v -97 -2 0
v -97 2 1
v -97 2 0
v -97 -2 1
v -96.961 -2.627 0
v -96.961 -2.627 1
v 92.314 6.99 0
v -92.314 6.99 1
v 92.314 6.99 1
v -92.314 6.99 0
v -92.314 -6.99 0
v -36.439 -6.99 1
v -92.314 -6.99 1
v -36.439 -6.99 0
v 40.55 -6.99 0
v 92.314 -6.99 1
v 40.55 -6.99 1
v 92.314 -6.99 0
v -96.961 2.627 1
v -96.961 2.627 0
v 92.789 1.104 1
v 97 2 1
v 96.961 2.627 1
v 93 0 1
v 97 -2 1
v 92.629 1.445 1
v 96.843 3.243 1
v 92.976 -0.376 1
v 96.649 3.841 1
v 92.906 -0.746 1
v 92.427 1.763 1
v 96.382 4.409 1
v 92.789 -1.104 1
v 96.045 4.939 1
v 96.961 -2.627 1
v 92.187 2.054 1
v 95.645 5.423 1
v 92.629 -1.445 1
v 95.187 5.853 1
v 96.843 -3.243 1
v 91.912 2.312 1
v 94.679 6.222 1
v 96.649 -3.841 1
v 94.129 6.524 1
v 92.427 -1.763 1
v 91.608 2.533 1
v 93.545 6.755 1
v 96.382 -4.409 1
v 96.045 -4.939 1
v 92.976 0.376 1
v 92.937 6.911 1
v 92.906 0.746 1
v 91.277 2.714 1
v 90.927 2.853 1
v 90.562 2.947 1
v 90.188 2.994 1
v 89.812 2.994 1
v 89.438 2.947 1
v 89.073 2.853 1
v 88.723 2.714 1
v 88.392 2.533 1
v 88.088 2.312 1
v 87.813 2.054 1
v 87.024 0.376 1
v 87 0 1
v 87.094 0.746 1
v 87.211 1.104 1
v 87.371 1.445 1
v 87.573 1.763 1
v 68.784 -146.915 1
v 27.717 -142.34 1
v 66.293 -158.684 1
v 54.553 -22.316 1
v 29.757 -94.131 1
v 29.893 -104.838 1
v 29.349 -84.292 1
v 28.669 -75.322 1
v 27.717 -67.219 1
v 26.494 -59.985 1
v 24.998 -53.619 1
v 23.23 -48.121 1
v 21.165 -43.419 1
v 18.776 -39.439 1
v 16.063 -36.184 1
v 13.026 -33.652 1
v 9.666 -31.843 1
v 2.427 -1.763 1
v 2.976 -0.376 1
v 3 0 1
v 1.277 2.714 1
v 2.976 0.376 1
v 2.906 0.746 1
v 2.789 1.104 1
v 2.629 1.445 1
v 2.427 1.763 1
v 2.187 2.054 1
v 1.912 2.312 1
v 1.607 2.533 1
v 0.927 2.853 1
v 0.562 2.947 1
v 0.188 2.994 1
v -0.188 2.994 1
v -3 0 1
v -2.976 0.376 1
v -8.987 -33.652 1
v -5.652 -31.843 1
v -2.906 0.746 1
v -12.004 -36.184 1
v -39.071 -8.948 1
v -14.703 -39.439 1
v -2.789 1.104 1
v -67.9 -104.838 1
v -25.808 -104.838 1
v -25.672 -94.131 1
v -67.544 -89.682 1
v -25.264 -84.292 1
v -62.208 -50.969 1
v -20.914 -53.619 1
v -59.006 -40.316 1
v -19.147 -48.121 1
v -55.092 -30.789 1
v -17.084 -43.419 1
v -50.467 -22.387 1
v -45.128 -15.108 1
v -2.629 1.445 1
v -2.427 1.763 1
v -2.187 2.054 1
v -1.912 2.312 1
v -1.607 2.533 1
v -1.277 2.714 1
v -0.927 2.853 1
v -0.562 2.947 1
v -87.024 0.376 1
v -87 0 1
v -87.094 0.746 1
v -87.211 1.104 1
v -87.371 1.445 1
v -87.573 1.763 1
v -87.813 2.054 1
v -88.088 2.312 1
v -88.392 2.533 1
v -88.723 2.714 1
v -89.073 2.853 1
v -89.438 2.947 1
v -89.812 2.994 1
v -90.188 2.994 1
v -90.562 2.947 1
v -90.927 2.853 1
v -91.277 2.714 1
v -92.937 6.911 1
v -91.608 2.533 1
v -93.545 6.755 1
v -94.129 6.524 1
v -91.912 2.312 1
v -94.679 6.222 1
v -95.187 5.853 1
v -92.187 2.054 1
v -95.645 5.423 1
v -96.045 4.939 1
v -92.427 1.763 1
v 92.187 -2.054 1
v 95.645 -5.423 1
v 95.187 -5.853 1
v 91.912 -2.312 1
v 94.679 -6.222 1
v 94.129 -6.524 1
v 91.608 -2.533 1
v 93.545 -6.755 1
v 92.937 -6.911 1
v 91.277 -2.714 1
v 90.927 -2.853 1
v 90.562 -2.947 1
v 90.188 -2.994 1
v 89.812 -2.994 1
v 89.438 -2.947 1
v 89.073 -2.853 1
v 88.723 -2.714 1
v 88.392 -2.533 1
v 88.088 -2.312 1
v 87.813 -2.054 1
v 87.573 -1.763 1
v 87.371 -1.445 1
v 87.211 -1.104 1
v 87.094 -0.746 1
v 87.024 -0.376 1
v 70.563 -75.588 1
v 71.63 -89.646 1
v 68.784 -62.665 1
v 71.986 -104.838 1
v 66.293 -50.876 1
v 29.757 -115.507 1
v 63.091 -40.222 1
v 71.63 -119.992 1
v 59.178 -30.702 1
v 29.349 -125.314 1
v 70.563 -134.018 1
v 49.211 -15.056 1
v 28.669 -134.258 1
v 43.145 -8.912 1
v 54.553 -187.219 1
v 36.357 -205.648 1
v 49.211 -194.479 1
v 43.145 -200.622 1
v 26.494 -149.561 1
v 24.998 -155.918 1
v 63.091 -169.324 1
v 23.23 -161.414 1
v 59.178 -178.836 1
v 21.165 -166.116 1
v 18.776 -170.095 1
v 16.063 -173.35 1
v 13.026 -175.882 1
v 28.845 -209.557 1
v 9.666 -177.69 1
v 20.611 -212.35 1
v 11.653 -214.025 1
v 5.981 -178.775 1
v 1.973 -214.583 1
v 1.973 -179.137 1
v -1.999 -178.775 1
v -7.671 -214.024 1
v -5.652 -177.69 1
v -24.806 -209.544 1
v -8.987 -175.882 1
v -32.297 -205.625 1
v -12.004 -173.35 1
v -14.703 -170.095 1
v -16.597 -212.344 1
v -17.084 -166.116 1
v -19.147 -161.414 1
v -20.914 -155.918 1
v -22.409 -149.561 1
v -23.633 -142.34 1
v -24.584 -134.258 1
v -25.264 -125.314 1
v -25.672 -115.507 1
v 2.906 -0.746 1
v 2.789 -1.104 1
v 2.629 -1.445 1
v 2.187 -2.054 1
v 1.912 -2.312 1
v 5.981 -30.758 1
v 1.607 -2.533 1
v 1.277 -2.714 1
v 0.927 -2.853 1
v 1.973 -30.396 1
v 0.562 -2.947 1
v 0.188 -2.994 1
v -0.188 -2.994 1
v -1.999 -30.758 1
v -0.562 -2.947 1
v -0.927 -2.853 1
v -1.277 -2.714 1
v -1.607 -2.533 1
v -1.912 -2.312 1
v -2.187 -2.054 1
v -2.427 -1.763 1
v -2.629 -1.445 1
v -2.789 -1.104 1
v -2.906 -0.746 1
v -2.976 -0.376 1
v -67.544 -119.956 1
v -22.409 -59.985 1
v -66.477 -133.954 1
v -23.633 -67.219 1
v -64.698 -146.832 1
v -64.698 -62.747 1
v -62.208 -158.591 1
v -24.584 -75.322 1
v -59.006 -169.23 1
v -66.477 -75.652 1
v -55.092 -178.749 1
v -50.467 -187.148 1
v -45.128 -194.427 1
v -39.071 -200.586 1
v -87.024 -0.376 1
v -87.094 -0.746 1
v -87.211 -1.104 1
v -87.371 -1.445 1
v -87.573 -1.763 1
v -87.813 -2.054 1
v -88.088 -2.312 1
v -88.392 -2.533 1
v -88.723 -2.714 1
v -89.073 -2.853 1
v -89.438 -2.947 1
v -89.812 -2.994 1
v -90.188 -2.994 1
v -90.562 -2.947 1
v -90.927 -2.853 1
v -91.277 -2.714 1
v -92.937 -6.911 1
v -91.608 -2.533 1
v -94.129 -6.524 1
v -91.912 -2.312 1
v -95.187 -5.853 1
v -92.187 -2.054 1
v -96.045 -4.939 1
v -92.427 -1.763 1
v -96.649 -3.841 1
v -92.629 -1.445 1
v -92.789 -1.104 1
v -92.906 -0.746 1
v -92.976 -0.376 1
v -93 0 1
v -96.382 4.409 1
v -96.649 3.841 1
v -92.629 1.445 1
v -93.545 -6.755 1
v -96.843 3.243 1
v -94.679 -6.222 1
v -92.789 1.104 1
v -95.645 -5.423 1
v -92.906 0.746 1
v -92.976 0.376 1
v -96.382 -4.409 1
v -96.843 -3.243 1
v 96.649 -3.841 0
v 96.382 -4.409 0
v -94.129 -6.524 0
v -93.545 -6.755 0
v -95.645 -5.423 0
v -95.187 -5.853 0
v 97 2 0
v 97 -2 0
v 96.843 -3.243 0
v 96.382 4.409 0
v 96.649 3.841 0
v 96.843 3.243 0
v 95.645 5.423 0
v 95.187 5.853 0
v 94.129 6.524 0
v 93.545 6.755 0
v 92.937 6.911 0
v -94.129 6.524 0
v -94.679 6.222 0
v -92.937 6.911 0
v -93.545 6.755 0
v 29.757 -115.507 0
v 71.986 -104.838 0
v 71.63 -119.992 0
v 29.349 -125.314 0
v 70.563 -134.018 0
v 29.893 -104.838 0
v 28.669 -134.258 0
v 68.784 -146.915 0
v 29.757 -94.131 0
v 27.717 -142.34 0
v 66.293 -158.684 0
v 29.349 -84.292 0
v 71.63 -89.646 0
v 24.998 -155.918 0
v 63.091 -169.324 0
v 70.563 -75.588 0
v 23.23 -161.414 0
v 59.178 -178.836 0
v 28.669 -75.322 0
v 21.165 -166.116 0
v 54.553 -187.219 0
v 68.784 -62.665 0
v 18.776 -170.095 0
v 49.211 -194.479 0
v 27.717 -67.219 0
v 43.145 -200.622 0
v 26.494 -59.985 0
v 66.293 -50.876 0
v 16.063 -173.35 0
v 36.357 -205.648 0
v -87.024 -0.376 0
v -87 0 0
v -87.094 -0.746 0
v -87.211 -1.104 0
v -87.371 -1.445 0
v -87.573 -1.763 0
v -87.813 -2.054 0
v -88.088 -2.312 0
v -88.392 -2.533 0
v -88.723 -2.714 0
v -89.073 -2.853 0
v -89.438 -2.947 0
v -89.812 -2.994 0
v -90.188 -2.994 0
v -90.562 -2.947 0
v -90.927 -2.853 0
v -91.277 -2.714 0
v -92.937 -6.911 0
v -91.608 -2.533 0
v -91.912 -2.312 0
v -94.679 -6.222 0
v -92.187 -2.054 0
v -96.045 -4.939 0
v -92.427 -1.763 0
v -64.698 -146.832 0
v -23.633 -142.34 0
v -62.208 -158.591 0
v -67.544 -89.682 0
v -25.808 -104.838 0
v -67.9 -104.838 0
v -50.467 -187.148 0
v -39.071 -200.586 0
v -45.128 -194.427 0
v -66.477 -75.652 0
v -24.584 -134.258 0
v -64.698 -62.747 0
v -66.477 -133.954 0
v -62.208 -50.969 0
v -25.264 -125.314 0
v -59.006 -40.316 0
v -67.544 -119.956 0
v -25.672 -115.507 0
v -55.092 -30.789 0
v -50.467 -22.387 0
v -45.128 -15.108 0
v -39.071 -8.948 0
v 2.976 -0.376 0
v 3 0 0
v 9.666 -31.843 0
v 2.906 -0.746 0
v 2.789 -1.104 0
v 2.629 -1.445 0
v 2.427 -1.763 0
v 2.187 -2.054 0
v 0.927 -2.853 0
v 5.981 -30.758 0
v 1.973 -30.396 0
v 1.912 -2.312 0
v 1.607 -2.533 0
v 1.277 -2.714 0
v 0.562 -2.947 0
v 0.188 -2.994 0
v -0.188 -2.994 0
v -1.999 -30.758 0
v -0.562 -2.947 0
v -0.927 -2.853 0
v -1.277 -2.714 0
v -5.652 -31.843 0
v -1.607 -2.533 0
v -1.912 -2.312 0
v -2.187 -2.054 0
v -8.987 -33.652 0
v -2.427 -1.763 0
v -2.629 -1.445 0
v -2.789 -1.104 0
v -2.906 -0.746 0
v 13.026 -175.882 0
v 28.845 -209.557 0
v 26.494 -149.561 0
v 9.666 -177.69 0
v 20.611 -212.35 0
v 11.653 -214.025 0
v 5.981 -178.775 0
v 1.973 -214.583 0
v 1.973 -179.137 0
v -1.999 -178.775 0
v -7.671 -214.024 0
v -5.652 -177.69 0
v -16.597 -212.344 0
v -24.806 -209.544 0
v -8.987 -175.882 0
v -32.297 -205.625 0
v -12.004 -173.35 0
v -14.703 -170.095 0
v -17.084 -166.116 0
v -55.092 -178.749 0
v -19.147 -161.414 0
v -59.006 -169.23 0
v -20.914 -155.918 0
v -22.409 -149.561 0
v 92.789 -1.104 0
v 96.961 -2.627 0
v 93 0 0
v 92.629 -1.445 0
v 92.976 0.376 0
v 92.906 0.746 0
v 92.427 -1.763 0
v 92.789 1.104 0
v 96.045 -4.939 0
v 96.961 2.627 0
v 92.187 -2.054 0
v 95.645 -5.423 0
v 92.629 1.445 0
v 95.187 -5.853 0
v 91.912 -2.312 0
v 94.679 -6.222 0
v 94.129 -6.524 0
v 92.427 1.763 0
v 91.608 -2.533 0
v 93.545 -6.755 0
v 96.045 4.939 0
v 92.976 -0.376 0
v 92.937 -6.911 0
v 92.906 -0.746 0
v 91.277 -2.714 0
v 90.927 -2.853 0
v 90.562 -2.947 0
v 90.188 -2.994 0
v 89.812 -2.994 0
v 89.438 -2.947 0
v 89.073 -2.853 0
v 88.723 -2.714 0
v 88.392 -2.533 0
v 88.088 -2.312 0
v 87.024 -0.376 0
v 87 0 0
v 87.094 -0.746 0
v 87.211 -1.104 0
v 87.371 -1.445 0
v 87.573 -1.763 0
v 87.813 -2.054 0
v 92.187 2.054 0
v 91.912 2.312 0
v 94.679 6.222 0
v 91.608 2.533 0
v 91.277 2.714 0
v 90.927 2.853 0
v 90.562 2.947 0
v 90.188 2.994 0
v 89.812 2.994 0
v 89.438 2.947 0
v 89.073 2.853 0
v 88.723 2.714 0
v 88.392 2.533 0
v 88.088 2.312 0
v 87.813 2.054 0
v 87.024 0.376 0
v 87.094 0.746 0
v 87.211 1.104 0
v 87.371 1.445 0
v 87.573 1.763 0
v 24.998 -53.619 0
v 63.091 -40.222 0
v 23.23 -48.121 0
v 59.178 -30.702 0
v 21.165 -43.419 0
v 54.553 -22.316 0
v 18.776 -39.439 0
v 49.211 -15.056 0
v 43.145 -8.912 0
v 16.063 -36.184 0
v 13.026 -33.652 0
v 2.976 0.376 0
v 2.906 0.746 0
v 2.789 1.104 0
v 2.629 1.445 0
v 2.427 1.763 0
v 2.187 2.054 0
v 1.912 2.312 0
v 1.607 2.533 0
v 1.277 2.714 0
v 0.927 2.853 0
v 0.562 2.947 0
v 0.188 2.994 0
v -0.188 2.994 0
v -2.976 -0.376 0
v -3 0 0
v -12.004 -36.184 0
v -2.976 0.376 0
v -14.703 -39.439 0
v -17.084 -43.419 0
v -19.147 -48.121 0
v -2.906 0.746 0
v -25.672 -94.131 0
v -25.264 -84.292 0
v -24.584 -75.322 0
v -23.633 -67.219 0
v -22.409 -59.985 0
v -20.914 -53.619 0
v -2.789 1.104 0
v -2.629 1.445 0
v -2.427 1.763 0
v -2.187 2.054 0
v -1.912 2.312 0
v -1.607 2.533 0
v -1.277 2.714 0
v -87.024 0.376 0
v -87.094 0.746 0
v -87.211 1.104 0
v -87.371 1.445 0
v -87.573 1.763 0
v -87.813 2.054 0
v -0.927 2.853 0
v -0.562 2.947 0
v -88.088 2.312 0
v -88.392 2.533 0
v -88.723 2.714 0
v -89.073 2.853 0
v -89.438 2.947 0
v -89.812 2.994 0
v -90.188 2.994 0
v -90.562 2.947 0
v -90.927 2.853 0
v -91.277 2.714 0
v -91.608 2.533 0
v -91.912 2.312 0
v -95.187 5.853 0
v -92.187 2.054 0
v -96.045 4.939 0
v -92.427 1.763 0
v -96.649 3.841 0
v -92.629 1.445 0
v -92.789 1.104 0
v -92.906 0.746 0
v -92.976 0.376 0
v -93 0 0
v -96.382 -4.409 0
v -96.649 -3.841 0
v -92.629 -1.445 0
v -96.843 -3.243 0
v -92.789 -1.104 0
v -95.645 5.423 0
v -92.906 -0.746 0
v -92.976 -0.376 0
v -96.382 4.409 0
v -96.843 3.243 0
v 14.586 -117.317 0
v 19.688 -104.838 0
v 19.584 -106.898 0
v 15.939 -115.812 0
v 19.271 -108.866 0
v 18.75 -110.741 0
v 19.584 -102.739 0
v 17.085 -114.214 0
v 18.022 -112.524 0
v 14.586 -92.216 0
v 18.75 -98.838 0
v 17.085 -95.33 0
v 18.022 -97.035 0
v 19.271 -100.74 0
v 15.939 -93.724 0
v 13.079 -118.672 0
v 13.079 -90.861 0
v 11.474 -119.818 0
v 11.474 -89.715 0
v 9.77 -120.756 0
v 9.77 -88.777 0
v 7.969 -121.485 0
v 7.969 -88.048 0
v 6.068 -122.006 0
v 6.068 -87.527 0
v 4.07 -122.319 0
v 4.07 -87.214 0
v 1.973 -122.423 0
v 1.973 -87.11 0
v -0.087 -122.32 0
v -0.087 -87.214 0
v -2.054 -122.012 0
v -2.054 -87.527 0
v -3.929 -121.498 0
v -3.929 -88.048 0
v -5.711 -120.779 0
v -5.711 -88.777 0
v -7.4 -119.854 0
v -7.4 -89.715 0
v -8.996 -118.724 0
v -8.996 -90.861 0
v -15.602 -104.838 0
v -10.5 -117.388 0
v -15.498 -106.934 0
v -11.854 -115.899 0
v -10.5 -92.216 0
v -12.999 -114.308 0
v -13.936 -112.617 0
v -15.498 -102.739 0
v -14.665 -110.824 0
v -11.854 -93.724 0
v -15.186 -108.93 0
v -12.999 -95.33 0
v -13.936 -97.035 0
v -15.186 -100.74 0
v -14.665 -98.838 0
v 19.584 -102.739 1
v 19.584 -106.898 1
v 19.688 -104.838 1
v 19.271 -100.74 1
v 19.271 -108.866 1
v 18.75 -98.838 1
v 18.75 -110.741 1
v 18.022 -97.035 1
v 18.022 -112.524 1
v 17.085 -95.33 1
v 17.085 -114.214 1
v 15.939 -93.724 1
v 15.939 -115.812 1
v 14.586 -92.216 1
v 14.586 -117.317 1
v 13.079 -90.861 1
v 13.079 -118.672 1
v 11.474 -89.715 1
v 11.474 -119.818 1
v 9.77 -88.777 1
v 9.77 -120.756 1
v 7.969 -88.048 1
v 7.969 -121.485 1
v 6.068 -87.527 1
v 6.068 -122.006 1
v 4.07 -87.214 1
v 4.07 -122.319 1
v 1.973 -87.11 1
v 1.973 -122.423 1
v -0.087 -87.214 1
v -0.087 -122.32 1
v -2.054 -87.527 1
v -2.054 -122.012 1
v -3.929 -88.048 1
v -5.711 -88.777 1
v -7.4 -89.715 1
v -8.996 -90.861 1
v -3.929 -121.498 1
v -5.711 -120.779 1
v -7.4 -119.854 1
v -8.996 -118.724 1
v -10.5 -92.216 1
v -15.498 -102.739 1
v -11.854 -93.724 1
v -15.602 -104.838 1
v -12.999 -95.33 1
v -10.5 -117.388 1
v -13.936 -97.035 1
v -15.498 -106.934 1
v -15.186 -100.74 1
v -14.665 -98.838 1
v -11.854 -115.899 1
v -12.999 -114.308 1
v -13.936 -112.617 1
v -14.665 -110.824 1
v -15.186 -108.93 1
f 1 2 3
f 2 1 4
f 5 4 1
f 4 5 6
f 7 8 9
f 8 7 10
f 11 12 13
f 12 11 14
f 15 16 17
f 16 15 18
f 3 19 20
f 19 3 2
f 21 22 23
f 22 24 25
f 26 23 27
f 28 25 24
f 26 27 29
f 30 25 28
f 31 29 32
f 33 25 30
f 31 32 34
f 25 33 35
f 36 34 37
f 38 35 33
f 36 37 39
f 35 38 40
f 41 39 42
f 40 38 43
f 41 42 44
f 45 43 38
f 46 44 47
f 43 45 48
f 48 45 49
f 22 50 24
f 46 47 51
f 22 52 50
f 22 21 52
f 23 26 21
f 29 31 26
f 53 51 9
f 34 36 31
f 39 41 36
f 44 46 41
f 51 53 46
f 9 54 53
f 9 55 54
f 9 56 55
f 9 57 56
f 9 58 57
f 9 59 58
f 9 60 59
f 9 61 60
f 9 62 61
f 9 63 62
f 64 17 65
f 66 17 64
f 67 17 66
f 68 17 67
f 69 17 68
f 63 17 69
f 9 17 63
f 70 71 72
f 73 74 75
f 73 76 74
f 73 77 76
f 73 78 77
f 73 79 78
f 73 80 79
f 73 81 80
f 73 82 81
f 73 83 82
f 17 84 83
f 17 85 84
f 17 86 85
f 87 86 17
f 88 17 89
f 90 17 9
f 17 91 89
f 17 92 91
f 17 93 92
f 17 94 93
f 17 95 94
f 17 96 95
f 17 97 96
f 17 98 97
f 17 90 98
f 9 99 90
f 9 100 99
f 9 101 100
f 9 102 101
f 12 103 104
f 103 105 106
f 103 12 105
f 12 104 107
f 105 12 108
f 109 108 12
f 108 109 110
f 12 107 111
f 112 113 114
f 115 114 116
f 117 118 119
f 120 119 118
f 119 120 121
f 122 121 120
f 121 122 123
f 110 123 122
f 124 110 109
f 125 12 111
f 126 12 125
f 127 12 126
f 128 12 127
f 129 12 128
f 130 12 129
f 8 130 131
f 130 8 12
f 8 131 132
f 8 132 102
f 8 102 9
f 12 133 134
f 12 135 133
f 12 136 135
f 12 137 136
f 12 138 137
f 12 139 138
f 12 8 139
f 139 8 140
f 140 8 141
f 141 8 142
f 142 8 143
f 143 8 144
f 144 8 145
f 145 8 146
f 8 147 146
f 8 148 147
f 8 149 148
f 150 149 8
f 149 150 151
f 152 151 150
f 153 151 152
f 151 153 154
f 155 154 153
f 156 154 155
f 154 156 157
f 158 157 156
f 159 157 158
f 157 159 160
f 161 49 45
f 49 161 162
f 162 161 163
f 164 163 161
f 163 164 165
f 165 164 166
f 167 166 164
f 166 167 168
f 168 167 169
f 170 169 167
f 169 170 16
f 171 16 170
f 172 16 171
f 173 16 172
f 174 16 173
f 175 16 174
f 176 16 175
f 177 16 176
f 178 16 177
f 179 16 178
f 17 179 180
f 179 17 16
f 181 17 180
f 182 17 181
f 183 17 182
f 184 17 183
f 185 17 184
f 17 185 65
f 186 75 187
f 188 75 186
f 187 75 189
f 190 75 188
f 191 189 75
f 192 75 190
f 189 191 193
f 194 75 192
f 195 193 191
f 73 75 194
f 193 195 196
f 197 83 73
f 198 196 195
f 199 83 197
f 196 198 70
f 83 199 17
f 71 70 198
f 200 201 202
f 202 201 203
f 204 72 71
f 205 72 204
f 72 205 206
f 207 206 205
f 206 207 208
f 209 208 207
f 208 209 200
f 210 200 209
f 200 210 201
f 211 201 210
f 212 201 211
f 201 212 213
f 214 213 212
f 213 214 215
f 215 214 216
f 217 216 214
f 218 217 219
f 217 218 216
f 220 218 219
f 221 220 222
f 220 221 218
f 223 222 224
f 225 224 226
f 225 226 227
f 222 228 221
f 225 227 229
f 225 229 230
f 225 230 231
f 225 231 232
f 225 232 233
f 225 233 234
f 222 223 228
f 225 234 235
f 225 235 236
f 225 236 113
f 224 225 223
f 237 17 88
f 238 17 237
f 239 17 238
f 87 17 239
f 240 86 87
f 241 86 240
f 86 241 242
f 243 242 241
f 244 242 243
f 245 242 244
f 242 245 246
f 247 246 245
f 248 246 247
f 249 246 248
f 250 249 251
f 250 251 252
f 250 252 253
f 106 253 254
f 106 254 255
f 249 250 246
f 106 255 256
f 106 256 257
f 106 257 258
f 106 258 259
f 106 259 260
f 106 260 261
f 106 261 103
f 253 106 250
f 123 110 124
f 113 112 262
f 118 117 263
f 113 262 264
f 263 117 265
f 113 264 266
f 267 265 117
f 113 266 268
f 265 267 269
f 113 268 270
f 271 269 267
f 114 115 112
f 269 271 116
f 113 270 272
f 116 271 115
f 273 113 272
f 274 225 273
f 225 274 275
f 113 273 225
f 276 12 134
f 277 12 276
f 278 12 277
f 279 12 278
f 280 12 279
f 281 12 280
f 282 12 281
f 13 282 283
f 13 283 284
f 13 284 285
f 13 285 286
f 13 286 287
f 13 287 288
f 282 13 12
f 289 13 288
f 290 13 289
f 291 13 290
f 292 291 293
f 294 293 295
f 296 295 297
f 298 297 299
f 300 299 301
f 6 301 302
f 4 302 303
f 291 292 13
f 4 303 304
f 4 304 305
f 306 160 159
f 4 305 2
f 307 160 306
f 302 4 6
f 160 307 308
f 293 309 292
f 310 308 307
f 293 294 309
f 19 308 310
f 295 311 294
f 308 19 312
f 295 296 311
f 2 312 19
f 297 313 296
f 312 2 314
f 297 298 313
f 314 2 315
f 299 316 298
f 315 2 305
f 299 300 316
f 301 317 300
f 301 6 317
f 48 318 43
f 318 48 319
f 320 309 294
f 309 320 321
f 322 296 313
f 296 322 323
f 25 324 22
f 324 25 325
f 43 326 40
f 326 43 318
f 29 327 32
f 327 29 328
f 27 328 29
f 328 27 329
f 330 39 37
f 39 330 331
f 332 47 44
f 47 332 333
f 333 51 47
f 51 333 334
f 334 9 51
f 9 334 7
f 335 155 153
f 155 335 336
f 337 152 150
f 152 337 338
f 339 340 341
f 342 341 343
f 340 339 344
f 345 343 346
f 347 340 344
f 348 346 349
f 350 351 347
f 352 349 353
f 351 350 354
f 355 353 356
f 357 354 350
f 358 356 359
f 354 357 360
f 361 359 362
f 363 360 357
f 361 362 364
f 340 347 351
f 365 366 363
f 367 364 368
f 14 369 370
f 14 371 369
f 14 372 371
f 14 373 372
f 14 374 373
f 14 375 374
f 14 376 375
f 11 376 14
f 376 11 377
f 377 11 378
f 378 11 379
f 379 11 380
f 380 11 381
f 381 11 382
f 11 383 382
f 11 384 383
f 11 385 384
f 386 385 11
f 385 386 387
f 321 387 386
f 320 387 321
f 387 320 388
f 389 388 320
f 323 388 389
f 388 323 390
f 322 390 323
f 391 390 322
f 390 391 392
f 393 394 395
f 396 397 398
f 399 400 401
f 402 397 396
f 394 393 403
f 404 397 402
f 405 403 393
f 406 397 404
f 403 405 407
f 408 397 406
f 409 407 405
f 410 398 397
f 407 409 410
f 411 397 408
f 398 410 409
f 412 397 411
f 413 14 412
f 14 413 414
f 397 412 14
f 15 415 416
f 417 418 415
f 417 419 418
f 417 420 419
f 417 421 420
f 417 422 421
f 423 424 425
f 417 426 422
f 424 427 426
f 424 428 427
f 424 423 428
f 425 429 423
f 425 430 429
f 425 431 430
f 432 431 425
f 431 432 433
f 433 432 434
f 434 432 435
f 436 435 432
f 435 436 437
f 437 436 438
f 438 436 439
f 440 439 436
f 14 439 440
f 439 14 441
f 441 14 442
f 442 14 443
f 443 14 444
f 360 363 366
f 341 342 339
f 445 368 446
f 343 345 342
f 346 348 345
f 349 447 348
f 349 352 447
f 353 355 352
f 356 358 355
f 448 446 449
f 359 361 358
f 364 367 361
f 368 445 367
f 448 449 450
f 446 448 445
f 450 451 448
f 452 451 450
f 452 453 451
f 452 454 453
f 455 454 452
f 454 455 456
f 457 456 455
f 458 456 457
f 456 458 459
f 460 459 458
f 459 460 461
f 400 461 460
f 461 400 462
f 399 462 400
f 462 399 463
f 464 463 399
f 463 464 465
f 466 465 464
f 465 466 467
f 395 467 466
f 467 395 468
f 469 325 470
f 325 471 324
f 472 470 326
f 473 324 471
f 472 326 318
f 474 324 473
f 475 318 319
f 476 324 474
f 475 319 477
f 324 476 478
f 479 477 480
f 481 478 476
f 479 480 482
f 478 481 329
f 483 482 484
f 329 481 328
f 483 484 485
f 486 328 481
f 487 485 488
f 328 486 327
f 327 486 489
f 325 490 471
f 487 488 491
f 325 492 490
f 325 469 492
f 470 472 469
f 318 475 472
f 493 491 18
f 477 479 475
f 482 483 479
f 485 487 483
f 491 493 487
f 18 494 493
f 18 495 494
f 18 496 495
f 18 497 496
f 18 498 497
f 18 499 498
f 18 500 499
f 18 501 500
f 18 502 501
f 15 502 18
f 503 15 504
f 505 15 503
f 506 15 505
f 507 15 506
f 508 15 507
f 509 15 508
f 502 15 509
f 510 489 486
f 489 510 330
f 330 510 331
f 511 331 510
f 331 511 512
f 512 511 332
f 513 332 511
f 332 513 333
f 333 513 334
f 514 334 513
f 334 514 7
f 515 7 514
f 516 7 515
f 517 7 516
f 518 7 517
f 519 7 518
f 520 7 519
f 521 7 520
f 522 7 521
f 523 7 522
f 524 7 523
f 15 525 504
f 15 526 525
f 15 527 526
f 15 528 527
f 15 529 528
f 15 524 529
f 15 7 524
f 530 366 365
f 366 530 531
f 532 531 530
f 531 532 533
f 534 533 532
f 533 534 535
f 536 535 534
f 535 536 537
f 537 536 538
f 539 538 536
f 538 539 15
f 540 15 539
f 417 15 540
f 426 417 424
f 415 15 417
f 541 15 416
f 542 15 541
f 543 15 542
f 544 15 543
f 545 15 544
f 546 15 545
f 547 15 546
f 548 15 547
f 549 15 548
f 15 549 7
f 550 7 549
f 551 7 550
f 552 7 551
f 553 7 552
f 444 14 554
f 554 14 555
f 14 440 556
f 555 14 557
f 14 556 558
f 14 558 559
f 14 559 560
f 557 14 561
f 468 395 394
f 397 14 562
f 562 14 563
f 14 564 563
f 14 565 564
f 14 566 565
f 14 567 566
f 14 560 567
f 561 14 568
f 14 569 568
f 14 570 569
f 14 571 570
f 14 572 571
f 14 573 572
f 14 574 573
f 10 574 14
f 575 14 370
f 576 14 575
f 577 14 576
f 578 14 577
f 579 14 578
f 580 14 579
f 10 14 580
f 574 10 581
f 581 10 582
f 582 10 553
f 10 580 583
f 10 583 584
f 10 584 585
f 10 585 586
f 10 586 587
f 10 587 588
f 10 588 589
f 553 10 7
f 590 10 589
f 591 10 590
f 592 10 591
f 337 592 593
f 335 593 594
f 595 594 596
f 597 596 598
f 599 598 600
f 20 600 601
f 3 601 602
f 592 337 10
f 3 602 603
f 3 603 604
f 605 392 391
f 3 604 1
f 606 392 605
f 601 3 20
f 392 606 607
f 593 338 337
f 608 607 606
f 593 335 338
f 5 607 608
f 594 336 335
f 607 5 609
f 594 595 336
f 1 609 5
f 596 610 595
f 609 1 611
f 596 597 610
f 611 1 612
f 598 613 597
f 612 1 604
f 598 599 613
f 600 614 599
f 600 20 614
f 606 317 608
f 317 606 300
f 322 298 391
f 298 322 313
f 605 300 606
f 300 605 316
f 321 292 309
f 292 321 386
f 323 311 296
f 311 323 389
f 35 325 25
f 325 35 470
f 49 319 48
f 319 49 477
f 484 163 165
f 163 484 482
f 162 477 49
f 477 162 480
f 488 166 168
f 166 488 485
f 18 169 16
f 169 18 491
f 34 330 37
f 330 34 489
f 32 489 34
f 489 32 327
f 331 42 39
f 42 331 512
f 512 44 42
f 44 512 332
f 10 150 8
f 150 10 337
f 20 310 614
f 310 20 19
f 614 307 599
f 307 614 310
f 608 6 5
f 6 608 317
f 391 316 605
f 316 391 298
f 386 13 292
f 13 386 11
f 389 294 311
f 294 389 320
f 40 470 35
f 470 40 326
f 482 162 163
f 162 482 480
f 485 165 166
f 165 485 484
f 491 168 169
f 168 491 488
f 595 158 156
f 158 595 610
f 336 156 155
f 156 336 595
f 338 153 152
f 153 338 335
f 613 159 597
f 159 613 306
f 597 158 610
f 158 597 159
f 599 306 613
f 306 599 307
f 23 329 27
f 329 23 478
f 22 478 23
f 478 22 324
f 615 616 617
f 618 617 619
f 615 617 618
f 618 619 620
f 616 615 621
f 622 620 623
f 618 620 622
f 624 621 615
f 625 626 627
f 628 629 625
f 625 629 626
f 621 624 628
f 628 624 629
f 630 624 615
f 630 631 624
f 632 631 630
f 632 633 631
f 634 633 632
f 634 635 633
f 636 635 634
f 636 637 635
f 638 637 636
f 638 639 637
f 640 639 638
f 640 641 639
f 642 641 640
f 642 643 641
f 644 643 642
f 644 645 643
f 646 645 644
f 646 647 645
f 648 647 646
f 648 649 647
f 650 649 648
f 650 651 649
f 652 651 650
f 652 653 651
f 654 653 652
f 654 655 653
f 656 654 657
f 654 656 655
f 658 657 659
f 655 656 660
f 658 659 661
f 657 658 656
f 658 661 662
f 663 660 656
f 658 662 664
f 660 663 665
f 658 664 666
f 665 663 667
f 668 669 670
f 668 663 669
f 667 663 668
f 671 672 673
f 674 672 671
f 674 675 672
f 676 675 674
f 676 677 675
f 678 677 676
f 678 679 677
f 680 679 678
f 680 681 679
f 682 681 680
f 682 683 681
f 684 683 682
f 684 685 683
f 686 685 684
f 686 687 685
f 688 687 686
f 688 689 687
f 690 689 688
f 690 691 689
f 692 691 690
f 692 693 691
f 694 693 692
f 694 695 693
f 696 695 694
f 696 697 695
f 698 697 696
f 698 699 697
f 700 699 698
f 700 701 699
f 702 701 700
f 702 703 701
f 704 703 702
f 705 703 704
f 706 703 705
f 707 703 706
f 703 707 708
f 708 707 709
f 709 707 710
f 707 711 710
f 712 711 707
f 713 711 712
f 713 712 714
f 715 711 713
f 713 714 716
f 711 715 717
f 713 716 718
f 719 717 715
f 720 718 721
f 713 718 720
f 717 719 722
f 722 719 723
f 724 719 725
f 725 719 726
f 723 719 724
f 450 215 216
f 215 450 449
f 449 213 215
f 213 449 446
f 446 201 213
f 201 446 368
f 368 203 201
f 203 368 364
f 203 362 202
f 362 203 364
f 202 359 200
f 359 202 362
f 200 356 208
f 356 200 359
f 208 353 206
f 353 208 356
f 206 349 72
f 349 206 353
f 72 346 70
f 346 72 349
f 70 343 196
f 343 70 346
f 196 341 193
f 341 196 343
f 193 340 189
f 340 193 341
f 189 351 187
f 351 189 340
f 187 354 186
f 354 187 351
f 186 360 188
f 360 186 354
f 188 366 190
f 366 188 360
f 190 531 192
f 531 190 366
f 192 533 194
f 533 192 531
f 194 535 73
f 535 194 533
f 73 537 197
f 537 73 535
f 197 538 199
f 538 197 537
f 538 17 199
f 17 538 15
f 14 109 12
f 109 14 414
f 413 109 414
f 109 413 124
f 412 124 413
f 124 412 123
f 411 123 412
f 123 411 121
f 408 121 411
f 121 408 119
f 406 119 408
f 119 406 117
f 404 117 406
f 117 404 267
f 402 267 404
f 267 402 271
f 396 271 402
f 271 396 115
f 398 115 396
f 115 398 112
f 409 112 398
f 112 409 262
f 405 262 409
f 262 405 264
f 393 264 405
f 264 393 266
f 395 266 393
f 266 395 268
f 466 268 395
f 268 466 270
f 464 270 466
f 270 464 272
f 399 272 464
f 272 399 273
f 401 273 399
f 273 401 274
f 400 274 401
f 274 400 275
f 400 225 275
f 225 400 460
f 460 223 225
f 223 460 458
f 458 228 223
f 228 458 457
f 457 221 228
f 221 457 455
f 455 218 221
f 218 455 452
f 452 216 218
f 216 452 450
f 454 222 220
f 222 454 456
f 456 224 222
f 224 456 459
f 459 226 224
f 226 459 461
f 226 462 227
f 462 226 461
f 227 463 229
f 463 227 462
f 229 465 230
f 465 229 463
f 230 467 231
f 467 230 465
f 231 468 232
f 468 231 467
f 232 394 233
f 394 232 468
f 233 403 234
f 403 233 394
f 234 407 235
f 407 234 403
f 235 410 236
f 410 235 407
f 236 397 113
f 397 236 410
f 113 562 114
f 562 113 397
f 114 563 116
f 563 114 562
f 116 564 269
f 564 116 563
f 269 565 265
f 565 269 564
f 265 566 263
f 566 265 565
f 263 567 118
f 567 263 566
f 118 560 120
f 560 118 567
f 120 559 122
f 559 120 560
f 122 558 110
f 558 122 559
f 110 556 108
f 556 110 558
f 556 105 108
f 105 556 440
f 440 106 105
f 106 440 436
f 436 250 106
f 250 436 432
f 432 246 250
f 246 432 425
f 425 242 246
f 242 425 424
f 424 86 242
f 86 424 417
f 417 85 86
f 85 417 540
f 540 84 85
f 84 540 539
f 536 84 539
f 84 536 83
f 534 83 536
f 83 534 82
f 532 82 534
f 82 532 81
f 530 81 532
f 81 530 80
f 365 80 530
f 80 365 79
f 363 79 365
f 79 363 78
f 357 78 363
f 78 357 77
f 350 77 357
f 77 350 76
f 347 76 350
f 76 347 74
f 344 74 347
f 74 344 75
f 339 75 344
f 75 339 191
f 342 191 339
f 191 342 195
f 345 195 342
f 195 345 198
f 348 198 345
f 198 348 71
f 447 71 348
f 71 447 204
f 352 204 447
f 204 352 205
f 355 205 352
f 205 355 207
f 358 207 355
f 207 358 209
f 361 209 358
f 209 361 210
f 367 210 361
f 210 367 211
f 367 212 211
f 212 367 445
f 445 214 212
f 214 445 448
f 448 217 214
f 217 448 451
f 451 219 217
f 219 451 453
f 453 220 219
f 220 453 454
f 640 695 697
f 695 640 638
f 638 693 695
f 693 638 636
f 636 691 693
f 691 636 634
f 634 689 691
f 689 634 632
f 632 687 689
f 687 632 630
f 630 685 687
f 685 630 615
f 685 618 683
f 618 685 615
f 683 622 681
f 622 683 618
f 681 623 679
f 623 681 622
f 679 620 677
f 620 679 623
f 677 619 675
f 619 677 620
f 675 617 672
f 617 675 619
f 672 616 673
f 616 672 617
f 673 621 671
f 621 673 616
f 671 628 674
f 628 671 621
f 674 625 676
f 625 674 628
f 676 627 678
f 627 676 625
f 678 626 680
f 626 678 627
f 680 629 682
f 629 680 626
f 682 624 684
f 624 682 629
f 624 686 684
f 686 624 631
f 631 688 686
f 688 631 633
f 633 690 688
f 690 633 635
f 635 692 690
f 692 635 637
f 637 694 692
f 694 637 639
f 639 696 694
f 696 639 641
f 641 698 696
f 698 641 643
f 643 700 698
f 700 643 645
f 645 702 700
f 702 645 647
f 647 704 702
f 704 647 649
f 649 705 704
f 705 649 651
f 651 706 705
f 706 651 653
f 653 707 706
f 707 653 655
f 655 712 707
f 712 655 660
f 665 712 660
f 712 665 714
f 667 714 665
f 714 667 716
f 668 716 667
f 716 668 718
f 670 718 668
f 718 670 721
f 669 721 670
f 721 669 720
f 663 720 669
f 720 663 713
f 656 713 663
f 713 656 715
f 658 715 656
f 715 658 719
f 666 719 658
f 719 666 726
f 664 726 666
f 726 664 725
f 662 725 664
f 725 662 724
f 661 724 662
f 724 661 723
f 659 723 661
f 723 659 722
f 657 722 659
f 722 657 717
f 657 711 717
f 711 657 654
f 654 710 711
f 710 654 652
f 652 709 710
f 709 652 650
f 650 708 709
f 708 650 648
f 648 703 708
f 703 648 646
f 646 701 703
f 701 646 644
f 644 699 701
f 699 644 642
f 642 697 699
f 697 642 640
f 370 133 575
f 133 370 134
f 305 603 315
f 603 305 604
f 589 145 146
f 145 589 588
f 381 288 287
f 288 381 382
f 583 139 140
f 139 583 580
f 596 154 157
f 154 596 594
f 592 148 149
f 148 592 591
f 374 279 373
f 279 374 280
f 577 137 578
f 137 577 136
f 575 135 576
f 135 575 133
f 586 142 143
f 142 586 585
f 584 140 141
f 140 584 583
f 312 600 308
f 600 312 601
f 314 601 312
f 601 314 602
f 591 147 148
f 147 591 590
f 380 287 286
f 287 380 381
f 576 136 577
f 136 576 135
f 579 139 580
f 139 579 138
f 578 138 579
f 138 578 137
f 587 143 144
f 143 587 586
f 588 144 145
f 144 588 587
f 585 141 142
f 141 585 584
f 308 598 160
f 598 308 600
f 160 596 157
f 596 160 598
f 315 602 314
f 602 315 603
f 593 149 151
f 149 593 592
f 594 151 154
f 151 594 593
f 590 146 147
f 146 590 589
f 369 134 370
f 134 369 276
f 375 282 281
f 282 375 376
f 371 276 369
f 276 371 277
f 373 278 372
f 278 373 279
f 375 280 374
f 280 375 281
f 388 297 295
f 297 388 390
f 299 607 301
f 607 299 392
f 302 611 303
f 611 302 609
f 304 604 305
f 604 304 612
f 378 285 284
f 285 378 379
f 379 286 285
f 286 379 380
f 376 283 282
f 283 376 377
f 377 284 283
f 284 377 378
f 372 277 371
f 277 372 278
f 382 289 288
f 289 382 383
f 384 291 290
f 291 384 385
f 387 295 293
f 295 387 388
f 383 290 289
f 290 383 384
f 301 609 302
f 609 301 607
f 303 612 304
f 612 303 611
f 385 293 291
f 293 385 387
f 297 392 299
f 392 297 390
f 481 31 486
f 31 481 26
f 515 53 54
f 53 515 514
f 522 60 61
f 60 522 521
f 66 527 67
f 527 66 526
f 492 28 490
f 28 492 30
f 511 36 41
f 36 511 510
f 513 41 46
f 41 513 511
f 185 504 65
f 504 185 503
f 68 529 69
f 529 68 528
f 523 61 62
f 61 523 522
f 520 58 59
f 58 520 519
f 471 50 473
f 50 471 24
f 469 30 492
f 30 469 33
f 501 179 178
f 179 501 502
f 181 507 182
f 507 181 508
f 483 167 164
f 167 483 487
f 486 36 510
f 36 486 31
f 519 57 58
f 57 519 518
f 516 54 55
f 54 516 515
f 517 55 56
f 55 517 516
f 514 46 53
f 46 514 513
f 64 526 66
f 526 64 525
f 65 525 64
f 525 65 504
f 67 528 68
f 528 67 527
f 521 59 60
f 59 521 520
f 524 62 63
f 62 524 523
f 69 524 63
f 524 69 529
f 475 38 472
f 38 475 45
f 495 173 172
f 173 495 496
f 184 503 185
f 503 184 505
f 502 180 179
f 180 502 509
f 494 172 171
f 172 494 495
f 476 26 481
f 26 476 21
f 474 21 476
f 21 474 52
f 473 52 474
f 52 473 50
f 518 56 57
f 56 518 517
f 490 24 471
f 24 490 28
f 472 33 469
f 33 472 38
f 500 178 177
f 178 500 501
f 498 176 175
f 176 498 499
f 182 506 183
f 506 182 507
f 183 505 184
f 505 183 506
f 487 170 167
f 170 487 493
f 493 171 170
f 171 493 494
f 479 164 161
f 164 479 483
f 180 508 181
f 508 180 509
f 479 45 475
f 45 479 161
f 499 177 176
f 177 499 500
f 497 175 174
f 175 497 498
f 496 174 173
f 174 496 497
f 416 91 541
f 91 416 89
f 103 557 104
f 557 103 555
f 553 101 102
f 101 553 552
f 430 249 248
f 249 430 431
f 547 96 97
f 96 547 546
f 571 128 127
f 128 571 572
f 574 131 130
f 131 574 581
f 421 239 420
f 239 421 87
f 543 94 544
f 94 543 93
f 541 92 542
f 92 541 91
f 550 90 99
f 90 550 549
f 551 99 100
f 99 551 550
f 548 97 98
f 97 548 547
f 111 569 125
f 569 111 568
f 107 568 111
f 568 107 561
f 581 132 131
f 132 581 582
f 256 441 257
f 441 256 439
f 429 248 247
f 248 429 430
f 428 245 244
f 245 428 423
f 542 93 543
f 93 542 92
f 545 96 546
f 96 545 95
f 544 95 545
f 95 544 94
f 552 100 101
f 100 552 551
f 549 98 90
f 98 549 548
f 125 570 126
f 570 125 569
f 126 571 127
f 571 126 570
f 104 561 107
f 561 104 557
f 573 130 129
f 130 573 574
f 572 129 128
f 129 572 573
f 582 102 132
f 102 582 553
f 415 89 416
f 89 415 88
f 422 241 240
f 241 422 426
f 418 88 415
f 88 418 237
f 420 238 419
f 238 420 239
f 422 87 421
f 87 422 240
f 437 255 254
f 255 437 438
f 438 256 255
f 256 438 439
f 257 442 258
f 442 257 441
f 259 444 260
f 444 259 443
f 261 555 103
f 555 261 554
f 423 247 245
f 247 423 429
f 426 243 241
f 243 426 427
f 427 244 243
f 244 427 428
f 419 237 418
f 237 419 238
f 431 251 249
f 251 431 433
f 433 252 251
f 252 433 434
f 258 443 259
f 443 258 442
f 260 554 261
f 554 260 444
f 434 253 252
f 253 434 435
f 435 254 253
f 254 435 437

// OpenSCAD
$fn = 50;


difference() {
	union() {
		translate(v = [0, 0, 0]) {
			rotate(a = [0, 0, 0]) {
				hull() {
					translate(v = [-92.0000000000, 2.0000000000, 0]) {
						rotate(a = [0, 0, 0]) {
							translate(v = [0, 0, 0]) {
								rotate(a = [0, 0, 0]) {
									cylinder(h = 1, r = 5);
								}
							}
						}
					}
					translate(v = [92.0000000000, 2.0000000000, 0]) {
						rotate(a = [0, 0, 0]) {
							translate(v = [0, 0, 0]) {
								rotate(a = [0, 0, 0]) {
									cylinder(h = 1, r = 5);
								}
							}
						}
					}
					translate(v = [-92.0000000000, -2.0000000000, 0]) {
						rotate(a = [0, 0, 0]) {
							translate(v = [0, 0, 0]) {
								rotate(a = [0, 0, 0]) {
									cylinder(h = 1, r = 5);
								}
							}
						}
					}
					translate(v = [92.0000000000, -2.0000000000, 0]) {
						rotate(a = [0, 0, 0]) {
							translate(v = [0, 0, 0]) {
								rotate(a = [0, 0, 0]) {
									cylinder(h = 1, r = 5);
								}
							}
						}
					}
				}
			}
		}
		translate(v = [0, 0, 0]) {
			rotate(a = [0, 0, 0]) {
				linear_extrude(height = 1) {
					text(font = "DejaVu Sans Mono:style=Bold", halign = "center", size = 209.0000000000, text = "0", valign = "top");
				}
			}
		}
	}
	union() {
		translate(v = [-90.0000000000, 0.0000000000, -125.0000000000]) {
			rotate(a = [0, 0, 0]) {
				cylinder(h = 250, r = 3.0000000000);
			}
		}
		translate(v = [90.0000000000, 0.0000000000, -125.0000000000]) {
			rotate(a = [0, 0, 0]) {
				cylinder(h = 250, r = 3.0000000000);
			}
		}
		translate(v = [90.0000000000, 0.0000000000, -125.0000000000]) {
			rotate(a = [0, 0, 0]) {
				cylinder(h = 250, r = 3.0000000000);
			}
		}
		translate(v = [0, 0, -125.0000000000]) {
			rotate(a = [0, 0, 0]) {
				cylinder(h = 250, r = 3.0000000000);
			}
		}
	}
}
